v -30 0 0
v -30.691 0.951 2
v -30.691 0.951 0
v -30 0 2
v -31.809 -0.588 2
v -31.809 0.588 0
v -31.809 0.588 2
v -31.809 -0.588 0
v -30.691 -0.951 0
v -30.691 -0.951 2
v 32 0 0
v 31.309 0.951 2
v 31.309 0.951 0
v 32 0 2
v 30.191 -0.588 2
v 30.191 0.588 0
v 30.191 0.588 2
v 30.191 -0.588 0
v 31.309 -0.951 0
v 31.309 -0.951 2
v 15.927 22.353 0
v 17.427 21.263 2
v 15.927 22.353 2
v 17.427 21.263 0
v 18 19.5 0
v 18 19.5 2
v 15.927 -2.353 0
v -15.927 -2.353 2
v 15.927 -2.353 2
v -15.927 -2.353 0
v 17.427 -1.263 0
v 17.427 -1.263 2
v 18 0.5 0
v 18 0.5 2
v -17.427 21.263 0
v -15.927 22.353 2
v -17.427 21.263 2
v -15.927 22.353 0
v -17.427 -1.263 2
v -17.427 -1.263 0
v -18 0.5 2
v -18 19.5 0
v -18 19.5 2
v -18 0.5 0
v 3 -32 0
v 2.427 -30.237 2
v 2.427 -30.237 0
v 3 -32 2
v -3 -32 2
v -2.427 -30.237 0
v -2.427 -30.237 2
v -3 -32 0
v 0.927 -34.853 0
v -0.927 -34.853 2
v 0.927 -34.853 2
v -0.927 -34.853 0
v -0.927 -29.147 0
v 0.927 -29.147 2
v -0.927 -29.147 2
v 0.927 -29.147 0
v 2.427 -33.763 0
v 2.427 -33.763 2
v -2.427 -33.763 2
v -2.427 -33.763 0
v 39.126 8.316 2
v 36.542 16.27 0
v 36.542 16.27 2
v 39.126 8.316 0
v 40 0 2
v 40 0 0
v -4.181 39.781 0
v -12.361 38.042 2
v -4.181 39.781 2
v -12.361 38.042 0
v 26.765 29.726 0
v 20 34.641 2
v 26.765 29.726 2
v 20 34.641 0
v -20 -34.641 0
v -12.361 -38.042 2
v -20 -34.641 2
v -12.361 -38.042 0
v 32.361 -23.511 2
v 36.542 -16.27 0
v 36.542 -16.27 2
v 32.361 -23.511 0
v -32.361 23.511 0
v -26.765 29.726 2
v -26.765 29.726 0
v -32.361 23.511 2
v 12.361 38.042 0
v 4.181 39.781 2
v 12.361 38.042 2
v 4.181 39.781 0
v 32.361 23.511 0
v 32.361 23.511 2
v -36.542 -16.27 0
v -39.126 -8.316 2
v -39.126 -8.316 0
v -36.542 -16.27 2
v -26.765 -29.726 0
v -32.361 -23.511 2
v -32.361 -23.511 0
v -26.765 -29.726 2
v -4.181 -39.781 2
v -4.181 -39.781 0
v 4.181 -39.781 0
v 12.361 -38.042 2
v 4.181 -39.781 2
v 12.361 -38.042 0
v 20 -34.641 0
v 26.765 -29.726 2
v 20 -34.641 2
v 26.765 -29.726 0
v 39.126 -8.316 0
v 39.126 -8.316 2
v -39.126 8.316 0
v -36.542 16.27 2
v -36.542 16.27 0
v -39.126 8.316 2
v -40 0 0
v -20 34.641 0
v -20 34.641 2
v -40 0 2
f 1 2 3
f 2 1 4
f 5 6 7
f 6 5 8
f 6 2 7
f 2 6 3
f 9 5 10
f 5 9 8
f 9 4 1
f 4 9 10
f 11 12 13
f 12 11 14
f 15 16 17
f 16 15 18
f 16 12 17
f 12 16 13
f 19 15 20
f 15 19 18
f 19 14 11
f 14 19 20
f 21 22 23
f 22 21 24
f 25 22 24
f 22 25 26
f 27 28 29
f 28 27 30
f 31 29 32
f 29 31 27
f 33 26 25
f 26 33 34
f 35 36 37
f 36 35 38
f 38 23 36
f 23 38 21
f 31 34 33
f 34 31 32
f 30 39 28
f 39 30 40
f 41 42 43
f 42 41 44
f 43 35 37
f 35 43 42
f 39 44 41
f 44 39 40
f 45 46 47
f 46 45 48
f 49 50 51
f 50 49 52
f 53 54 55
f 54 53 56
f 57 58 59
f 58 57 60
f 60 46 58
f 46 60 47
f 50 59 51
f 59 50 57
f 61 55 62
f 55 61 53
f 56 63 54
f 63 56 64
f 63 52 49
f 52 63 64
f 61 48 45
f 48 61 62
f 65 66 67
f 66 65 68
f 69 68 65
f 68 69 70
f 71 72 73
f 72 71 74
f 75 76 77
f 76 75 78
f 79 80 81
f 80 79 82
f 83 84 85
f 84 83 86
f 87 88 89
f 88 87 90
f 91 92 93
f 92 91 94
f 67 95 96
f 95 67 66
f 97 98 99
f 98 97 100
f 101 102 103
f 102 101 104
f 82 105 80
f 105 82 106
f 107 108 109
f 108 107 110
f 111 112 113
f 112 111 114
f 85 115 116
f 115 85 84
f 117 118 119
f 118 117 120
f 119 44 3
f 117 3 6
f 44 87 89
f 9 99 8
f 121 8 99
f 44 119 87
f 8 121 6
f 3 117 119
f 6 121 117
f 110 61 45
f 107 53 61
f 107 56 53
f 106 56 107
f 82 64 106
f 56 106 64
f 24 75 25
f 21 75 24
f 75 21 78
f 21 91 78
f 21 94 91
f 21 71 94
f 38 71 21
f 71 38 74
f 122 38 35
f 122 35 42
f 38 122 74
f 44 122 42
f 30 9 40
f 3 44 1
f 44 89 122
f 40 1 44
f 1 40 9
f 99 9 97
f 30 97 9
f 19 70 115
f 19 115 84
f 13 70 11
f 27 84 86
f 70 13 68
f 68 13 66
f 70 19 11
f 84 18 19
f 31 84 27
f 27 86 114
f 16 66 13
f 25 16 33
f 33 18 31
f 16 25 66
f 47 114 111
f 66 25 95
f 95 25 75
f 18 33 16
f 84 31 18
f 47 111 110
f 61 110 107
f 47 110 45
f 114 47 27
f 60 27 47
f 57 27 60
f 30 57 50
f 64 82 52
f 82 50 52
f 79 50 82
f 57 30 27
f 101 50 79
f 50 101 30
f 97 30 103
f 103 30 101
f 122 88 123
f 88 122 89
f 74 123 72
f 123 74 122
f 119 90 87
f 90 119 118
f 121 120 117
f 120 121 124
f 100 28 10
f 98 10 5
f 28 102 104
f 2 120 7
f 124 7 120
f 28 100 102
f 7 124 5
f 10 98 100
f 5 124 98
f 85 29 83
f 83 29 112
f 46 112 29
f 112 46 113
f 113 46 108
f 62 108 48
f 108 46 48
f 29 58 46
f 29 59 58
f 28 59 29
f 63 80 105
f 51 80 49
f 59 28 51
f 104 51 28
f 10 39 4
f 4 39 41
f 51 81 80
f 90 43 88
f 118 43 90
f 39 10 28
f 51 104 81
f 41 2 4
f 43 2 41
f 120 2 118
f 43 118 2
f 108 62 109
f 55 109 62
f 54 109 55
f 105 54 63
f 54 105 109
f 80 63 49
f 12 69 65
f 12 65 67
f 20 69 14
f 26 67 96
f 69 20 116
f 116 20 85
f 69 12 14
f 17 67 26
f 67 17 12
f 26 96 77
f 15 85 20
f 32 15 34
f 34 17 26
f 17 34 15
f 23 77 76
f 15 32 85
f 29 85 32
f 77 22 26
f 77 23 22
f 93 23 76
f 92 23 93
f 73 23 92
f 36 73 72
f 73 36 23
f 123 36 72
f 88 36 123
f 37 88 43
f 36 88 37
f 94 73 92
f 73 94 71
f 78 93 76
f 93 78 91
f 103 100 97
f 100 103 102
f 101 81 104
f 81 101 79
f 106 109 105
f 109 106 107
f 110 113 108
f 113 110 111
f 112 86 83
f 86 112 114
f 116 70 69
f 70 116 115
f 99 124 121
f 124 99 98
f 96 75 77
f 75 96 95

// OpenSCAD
// file: speedo_config.scad
faceplate_display_width = 36;
faceplate_display_height = 25;
faceplate_thickness = 2;

faceplate_attach_hole_r = 1;
faceplate_attach_hole_span = 62;

bracket_thickness = 2;
bracket_display_width = 52;
bracket_faceplate_height = 42;
bracket_display_plate_height = 42 - 5 - 2;
bracket_inner_width = 46;
// main file
include <speedo_config.scad>

module faceplate_cutout() {
    minkowski() {
        linear_extrude(4, center=false)
            square([faceplate_display_width-6, faceplate_display_height-6], center=true);
        cylinder(r=3, h=4);
    }
}

module faceplate_highbeam() {
    translate([0, -32, -1])
        cylinder(4, 3, 3, center=false);
}

module faceplate_hole() {
    cylinder(4, faceplate_attach_hole_r, faceplate_attach_hole_r, center=false);
}

module faceplate_holes() {
    union() {
        translate([-faceplate_attach_hole_span/2, 0, -1])
            faceplate_hole();
        translate([faceplate_attach_hole_span/2, 0, -1])
            faceplate_hole();
    }
}

module faceplate() {
    color("Black")
        difference() {
            linear_extrude(faceplate_thickness, center=false)
                circle(d=80);
            union() {
                translate([0, 10, -1])
                    faceplate_cutout();
                faceplate_highbeam();
                faceplate_holes();
            }
        }
}

faceplate();
